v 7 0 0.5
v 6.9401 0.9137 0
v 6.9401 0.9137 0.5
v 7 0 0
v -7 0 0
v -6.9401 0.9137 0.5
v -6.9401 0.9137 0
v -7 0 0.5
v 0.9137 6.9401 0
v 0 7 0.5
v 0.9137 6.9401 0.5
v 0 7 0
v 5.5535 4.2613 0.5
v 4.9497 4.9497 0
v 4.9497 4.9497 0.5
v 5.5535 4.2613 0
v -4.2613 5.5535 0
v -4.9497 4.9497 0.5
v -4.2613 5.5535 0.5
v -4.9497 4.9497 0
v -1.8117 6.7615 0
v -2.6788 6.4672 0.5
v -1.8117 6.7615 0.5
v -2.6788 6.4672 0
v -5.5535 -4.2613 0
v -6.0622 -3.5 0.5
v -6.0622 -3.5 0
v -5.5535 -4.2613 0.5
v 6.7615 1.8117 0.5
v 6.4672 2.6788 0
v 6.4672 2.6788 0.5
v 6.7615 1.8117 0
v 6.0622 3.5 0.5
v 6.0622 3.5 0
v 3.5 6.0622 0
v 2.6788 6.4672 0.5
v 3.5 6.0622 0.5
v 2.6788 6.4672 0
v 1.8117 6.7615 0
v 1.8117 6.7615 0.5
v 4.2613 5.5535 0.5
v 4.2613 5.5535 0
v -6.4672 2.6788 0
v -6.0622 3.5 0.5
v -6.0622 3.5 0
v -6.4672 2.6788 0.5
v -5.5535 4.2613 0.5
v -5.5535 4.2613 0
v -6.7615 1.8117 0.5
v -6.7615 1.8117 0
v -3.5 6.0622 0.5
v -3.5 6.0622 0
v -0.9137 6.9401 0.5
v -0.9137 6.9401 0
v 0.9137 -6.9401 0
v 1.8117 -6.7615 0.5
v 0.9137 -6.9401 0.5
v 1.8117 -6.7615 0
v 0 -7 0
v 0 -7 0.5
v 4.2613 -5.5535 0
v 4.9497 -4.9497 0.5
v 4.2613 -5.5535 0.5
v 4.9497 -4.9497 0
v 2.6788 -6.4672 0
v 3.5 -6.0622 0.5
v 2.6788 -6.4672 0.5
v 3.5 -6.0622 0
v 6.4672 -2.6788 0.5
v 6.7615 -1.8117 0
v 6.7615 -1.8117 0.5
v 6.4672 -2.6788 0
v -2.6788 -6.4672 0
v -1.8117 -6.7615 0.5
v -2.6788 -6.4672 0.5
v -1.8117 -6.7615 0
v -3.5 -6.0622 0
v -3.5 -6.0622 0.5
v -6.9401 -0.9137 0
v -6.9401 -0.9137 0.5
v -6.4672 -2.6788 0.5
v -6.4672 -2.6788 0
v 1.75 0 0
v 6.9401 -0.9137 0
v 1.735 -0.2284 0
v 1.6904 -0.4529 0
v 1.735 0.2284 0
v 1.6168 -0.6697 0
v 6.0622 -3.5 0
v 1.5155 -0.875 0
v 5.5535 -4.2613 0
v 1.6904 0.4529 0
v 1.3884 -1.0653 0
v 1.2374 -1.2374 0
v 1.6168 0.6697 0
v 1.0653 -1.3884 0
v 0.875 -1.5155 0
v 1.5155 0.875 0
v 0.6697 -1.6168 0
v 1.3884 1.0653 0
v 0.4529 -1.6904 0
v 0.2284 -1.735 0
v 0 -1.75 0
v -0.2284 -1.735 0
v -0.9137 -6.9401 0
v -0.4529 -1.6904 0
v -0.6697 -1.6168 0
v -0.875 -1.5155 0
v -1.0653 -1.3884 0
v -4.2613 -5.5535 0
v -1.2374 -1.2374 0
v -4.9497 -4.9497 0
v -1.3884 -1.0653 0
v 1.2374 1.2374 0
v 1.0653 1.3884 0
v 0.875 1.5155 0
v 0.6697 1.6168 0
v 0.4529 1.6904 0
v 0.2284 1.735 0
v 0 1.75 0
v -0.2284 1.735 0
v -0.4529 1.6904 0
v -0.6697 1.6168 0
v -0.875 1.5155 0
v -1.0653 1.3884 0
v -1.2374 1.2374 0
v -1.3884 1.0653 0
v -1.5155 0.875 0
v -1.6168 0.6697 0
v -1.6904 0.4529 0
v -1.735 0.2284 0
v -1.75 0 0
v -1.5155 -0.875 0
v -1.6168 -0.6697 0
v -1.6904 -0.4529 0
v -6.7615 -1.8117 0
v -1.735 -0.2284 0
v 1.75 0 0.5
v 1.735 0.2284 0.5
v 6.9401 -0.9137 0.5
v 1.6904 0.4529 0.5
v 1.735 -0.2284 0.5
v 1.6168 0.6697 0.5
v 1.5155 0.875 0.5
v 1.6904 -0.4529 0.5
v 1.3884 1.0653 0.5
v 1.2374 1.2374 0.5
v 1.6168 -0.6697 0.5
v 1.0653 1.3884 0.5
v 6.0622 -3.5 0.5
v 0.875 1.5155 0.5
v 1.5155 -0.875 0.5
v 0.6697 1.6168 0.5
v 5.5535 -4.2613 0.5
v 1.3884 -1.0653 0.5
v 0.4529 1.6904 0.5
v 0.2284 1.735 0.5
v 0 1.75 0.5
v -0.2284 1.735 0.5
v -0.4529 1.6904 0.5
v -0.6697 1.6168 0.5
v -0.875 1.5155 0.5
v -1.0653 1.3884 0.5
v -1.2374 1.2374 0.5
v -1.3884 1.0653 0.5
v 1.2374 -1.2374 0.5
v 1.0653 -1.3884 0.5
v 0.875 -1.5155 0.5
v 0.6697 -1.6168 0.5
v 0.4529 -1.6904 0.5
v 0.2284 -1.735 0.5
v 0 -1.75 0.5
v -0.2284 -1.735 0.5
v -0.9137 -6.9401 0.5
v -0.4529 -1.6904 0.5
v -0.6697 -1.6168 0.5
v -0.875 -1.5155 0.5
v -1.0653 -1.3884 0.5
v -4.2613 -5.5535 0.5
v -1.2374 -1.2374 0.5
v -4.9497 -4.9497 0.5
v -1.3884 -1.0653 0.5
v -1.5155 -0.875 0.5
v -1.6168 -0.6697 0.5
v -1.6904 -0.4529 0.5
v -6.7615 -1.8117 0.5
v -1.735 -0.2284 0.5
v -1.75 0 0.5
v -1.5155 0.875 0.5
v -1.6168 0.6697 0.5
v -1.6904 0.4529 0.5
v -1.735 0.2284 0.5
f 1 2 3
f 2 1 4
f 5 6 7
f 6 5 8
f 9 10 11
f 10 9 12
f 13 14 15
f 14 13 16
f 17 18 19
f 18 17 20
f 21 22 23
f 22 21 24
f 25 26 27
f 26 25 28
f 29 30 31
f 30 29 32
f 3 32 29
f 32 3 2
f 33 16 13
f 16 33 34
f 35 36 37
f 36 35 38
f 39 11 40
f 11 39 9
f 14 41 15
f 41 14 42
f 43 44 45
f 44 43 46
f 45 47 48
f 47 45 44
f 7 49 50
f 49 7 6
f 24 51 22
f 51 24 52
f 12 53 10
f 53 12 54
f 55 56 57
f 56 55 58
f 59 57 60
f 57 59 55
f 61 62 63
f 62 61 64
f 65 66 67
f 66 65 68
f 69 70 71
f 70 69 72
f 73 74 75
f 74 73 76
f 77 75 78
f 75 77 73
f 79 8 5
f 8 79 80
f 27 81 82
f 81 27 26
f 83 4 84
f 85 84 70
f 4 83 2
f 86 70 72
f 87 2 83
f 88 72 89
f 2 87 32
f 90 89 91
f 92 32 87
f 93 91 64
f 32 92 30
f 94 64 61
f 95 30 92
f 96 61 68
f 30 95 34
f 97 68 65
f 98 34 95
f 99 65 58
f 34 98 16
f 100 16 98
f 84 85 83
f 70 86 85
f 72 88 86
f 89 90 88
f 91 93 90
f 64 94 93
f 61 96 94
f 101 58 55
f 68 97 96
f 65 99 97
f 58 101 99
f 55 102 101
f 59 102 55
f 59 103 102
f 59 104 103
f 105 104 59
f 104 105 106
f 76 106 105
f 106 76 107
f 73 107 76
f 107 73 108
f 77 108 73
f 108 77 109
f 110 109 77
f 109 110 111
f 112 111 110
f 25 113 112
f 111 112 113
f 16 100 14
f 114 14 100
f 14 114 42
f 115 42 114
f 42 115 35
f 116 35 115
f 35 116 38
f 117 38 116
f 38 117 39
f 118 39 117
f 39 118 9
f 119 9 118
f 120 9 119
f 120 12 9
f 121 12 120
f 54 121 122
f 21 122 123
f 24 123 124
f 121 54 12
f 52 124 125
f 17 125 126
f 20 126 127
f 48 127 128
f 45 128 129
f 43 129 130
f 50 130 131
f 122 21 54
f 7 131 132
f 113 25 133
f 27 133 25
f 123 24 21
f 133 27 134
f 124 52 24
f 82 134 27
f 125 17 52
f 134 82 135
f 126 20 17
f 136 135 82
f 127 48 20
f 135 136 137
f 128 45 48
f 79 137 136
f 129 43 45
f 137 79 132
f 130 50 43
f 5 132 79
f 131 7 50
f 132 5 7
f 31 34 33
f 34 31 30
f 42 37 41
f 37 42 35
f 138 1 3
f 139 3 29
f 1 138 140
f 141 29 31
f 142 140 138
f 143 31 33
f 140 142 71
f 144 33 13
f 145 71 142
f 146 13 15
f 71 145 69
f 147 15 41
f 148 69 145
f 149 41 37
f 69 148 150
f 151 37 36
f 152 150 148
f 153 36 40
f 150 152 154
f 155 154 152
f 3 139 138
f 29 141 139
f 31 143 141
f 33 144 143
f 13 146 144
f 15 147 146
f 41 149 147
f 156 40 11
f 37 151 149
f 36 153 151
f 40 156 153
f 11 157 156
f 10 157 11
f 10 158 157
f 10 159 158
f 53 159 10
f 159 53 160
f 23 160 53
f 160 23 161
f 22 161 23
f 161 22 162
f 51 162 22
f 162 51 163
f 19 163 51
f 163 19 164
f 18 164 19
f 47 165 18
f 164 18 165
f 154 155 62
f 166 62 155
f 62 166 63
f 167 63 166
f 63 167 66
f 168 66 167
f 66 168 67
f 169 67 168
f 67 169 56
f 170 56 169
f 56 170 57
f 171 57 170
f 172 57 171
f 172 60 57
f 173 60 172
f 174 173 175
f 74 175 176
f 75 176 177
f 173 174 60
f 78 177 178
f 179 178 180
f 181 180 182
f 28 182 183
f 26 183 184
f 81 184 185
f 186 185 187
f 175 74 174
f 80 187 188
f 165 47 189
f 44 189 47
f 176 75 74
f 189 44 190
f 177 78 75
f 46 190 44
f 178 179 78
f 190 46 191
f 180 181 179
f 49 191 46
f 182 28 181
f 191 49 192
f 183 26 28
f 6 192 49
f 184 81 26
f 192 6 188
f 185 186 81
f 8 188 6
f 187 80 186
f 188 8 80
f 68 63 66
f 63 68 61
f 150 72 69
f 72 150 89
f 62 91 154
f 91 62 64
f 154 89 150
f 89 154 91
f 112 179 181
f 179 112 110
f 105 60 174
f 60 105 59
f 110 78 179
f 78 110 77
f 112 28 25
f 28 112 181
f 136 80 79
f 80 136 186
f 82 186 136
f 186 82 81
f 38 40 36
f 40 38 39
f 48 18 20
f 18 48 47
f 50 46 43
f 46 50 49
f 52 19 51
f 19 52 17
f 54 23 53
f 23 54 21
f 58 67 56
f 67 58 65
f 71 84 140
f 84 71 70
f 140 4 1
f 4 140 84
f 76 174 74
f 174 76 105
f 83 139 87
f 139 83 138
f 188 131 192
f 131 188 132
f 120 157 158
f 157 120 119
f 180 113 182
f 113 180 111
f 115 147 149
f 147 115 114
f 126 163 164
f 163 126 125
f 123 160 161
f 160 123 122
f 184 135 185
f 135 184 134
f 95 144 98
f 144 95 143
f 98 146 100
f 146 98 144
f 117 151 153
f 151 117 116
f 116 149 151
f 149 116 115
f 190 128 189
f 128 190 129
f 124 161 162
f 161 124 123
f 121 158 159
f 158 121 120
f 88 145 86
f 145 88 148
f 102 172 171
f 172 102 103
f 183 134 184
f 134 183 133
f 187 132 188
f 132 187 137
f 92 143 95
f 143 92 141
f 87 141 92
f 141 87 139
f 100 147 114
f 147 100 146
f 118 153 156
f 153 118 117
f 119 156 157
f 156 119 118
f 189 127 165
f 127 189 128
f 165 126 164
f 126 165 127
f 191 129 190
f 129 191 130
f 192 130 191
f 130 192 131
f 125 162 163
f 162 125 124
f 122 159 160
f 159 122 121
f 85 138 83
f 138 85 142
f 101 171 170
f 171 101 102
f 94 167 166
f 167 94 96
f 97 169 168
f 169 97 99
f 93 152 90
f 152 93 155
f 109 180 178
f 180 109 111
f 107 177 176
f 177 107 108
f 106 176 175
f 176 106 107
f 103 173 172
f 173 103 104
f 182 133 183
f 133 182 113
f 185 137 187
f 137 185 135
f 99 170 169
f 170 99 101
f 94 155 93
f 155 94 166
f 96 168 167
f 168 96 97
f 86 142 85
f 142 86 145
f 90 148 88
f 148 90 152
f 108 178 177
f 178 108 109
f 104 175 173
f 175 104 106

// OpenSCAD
// Gen-CY — assembly gap shim, h = run_clear (rotor face -> flange); copper is inside the flanges
include <parameters.scad>;
$fn = 48;
difference() {
    cylinder(d=spacer_pad_od, h=gap_spacer_h);
    translate([0, 0, -0.1]) cylinder(d=spacer_pad_id, h=gap_spacer_h + 0.2);
}
